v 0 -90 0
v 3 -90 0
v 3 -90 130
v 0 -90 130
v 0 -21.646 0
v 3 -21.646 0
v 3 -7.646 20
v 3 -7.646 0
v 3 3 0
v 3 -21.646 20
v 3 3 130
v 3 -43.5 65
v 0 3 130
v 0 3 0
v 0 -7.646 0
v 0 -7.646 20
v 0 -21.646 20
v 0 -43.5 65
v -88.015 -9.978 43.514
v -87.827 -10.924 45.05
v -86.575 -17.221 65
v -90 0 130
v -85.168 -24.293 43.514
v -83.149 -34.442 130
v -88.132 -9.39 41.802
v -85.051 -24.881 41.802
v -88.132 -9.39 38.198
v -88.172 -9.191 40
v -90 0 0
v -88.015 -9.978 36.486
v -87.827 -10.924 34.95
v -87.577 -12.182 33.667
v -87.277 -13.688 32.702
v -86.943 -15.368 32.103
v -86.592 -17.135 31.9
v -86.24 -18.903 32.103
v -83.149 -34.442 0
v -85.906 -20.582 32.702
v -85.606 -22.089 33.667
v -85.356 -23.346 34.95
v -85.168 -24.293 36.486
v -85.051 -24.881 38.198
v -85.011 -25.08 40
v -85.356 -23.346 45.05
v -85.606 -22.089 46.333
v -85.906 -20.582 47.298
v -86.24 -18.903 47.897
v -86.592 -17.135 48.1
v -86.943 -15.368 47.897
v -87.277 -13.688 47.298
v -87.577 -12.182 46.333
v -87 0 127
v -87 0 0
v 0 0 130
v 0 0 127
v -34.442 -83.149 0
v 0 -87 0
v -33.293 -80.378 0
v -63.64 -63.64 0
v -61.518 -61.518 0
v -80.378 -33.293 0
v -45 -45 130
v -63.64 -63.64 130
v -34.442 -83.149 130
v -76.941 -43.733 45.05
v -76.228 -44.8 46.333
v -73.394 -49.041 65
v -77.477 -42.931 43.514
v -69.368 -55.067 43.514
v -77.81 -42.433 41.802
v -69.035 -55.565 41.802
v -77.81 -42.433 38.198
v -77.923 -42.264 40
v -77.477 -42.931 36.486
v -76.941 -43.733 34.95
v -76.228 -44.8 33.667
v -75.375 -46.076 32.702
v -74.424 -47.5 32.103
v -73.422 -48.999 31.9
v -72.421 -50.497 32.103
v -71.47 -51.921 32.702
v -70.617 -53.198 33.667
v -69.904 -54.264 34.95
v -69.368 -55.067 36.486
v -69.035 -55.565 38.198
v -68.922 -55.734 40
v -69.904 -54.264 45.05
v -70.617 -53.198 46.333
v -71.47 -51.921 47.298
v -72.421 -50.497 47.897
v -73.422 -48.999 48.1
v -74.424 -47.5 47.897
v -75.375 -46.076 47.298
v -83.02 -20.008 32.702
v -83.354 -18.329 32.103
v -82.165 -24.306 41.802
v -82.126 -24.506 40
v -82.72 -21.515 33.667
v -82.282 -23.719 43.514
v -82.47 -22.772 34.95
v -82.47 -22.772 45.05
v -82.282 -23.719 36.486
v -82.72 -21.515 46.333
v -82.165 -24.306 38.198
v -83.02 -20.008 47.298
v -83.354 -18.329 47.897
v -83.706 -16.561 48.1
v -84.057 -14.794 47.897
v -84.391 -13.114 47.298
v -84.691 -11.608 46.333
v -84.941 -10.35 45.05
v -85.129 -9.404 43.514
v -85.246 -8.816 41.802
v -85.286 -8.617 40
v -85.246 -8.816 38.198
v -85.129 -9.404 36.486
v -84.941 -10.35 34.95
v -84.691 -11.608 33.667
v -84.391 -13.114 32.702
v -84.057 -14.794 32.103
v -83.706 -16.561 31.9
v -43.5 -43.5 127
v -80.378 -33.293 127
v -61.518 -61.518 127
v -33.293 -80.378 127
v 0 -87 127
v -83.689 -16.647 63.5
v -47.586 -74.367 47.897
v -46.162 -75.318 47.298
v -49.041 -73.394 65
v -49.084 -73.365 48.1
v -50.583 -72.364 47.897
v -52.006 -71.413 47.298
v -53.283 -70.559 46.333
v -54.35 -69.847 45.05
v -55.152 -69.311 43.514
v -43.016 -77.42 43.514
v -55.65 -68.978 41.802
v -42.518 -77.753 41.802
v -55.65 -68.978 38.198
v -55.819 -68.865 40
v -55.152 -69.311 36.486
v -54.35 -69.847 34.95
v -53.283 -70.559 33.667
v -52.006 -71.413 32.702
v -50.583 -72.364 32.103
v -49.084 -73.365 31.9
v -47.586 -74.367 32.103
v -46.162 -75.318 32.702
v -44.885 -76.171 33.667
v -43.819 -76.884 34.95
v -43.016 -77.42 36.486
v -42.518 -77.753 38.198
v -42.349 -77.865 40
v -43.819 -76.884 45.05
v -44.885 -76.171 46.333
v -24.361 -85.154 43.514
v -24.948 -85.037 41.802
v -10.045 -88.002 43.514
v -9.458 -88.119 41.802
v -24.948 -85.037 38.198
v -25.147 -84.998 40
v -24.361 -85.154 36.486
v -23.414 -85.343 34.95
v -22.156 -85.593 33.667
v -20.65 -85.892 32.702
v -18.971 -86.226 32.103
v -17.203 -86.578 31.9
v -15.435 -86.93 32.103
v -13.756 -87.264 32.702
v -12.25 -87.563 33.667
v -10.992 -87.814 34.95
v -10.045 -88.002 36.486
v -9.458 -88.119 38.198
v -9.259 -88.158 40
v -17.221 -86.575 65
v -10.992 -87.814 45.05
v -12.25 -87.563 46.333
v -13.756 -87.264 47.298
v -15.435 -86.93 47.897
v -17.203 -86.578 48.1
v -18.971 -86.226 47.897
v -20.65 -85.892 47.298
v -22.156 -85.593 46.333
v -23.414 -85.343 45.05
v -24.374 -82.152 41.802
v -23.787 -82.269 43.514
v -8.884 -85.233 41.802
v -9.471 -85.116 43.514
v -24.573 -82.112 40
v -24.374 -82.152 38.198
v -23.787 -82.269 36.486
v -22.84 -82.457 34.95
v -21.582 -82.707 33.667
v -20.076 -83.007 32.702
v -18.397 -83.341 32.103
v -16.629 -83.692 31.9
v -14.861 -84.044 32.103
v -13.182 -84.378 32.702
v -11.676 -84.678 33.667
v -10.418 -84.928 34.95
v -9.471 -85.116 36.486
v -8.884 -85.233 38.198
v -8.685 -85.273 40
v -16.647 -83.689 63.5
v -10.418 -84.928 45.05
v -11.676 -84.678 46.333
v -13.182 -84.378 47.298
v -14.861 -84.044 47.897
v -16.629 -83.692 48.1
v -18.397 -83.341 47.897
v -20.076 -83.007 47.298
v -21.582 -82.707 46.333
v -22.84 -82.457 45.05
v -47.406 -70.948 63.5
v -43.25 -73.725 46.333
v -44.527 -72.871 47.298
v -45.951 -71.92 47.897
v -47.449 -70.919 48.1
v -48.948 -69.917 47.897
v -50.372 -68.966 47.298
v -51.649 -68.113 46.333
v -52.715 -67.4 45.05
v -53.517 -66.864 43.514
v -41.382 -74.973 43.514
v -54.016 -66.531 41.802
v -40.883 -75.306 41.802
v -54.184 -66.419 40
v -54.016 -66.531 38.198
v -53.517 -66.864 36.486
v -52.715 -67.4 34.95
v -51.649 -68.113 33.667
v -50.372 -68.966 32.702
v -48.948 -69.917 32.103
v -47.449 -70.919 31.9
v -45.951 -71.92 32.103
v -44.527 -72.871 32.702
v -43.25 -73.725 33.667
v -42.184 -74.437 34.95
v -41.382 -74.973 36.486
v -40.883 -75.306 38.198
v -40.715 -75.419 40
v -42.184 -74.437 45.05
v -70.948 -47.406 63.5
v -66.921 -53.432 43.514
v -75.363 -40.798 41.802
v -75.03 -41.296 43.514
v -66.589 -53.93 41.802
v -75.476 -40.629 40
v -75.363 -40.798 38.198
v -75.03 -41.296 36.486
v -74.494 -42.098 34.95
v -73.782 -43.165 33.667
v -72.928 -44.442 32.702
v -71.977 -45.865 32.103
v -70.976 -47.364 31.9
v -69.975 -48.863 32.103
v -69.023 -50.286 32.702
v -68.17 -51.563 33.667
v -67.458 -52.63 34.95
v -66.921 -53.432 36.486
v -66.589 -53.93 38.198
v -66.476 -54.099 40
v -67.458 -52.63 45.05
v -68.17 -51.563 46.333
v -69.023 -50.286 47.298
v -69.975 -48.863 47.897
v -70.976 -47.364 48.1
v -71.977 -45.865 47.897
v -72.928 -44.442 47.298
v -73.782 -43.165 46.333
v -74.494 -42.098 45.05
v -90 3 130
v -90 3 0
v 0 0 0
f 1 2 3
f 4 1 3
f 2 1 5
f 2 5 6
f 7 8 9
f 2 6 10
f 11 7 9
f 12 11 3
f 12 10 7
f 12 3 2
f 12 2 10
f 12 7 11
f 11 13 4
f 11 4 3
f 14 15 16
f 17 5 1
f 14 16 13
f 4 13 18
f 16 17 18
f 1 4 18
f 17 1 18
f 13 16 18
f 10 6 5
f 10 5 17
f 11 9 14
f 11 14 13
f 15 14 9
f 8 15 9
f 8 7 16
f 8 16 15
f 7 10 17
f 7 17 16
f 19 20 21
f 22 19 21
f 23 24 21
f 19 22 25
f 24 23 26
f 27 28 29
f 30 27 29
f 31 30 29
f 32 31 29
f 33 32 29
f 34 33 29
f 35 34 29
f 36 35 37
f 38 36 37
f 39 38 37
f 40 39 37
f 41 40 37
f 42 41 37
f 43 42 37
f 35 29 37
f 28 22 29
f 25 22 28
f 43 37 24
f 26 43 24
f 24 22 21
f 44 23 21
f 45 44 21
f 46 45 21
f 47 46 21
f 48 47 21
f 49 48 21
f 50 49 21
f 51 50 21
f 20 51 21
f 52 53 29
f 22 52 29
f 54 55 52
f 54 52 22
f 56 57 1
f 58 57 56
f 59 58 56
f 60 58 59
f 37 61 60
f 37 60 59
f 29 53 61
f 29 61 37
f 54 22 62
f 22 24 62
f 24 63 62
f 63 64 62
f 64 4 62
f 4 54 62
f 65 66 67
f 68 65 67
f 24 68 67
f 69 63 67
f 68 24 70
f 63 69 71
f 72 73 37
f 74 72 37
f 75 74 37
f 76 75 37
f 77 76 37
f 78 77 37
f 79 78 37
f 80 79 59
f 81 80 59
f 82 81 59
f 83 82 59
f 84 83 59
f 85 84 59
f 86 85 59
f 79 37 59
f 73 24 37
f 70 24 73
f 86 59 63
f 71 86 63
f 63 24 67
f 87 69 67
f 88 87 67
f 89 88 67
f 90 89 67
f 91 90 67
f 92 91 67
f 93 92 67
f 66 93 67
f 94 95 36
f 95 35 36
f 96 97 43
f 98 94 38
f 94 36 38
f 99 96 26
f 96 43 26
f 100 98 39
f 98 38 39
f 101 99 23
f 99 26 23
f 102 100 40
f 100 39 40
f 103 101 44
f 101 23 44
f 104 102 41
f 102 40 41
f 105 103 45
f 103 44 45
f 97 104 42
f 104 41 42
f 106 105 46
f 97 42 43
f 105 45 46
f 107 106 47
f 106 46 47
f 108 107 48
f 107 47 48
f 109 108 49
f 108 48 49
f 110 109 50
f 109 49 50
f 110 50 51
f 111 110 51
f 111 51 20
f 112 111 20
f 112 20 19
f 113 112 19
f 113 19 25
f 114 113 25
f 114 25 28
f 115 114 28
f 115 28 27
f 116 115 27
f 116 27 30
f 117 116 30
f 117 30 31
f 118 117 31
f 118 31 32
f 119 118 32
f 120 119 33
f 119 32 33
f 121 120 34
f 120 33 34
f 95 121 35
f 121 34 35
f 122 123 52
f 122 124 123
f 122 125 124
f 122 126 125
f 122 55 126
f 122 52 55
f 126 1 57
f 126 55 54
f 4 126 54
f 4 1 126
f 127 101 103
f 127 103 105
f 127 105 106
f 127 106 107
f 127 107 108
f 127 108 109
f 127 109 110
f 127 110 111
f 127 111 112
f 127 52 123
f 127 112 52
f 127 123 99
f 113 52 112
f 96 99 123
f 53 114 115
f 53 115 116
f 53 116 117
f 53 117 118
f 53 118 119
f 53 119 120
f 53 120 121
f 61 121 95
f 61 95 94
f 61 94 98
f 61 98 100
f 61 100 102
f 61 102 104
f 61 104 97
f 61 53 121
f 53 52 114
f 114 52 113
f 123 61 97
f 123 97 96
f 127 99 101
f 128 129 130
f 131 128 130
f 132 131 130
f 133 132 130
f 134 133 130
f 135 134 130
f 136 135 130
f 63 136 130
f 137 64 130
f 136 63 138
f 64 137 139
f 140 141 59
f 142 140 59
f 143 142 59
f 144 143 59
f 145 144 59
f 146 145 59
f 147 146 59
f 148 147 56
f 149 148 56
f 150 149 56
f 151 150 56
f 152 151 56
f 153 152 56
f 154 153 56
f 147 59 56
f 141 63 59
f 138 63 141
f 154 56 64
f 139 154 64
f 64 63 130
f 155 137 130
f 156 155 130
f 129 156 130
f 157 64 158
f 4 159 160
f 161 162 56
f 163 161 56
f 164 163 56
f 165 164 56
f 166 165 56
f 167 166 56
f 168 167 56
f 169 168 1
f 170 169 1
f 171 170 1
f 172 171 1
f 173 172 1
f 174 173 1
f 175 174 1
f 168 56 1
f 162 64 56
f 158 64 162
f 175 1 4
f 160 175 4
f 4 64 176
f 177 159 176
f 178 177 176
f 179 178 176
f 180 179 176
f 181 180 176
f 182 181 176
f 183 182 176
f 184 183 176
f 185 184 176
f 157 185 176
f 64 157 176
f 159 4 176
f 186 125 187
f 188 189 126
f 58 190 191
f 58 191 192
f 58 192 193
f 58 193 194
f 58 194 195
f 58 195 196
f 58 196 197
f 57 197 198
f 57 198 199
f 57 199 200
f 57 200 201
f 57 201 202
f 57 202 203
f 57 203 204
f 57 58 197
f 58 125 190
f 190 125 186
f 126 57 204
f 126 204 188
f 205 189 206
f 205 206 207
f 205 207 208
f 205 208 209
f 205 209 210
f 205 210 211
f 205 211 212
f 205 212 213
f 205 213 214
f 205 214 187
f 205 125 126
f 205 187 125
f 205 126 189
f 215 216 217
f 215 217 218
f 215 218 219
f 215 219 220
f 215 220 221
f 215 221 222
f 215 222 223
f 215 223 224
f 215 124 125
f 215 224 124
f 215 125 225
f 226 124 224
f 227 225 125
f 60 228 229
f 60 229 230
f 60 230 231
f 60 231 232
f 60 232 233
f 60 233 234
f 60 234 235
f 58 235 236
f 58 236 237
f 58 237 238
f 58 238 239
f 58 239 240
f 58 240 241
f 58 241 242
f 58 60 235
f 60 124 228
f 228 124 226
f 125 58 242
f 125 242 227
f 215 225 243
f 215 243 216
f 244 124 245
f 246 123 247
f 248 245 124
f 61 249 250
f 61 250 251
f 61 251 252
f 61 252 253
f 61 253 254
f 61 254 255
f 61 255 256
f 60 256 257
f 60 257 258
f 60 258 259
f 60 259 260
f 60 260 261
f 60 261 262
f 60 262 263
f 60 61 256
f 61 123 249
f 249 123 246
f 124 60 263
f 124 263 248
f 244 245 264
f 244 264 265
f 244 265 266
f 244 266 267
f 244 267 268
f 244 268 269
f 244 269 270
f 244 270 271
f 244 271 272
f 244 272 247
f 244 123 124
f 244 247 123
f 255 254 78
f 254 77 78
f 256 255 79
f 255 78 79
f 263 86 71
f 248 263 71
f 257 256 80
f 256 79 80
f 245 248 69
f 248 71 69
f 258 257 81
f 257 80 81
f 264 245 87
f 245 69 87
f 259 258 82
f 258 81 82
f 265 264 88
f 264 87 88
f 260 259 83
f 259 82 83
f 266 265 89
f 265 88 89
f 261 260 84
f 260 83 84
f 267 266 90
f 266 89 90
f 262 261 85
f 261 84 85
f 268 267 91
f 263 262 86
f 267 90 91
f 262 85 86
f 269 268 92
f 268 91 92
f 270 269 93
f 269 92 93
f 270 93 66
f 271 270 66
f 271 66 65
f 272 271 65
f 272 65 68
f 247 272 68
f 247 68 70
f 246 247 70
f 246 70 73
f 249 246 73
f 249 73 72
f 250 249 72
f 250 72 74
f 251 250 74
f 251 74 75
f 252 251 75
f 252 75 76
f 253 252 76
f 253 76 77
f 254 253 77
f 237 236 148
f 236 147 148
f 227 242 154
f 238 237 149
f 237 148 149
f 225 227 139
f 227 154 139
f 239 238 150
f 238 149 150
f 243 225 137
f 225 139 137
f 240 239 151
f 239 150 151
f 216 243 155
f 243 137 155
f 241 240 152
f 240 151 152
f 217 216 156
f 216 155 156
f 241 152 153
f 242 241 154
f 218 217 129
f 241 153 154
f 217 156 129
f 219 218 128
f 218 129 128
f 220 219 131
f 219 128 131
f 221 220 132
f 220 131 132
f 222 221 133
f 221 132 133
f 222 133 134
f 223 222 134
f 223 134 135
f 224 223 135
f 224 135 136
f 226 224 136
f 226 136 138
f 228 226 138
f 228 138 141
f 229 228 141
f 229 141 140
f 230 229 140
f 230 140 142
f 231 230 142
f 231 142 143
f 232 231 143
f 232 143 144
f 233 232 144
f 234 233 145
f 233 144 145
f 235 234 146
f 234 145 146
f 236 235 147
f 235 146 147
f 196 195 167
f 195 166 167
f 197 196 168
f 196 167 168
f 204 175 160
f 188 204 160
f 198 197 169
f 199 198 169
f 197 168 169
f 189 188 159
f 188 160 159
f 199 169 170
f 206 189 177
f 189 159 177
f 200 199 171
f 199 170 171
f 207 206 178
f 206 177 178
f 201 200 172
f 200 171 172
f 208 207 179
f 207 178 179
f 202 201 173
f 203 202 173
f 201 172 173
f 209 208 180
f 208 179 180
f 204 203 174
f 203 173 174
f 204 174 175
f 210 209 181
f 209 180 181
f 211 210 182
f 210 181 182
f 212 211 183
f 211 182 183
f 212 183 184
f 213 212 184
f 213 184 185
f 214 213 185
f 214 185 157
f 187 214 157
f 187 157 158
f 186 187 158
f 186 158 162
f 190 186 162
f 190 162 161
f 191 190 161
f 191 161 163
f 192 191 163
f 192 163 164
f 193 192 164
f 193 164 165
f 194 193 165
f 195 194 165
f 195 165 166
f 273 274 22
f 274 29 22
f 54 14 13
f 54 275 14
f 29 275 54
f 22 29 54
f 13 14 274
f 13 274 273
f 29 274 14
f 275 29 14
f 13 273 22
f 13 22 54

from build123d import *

# Parameters (mm, degrees)
BOX002_W        = 90
BOX002_H        = 3
BOX002_DEPTH    = 130
BOX001_W        = 90
BOX001_H        = 90
BOX001_DEPTH    = 130
BOX_W           = 90
BOX_H           = 180
BOX_DEPTH       = 130
PRISM001_DEPTH  = 127
PRISM_DEPTH     = 130
SKETCH001_R     = 8.1
POCKET_DEPTH    = 3
SKETCH002_R     = 8.1
POCKET001_DEPTH = 3
SKETCH003_R     = 8.1
POCKET002_DEPTH = 3
SKETCH004_R     = 8.1
POCKET003_DEPTH = 3
BOX003_W        = 3
BOX003_H        = 93
BOX003_DEPTH    = 130
SKETCH005_W     = 14
SKETCH005_H     = 20
POCKET004_DEPTH = 3


with BuildPart() as cubo002:
    # Box002 → Box002 (new body)
    with BuildSketch(Plane(origin=(-90, 0, 0), x_dir=(1, 0, 0), z_dir=(0, 0, 1))):
        with Locations((45, 1.5)):
            Rectangle(BOX002_W, BOX002_H)
    extrude(amount=BOX002_DEPTH)


with BuildPart() as cubo001:
    # Box001 → Box001 (new body)
    with BuildSketch(Plane(origin=(-90, 0, 0), x_dir=(1, 0, 0), z_dir=(0, 0, 1))):
        with Locations((45, 45)):
            Rectangle(BOX001_W, BOX001_H)
    extrude(amount=BOX001_DEPTH)


with BuildPart() as cubo:
    # Box → Box (new body)
    with BuildSketch(Plane(origin=(0, -90, 0), x_dir=(1, 0, 0), z_dir=(0, 0, 1))):
        with Locations((45, 90)):
            Rectangle(BOX_W, BOX_H)
    extrude(amount=BOX_DEPTH)


with BuildPart() as prisma001:
    # Prism001 → Prism001 (new body)
    with BuildSketch(Plane.XY):
        Polygon((87, 0), (80.3775193285, 33.2934586158), (61.5182899632, 61.5182899632), (33.2934586158, 80.3775193285), (0, 87), (-33.2934586158, 80.3775193285), (-61.5182899632, 61.5182899632), (-80.3775193285, 33.2934586158), (-87, 0), (-80.3775193285, -33.2934586158), (-61.5182899632, -61.5182899632), (-33.2934586158, -80.3775193285), (0, -87), (33.2934586158, -80.3775193285), (61.5182899632, -61.5182899632), (80.3775193285, -33.2934586158), align=None)
    extrude(amount=PRISM001_DEPTH)


with BuildPart() as pocket003:
    # Prism → Prism (new body)
    with BuildSketch(Plane.XY):
        Polygon((90, 0), (83.149157926, 34.4415089129), (63.6396103068, 63.6396103068), (34.4415089129, 83.149157926), (0, 90), (-34.4415089129, 83.149157926), (-63.6396103068, 63.6396103068), (-83.149157926, 34.4415089129), (-90, 0), (-83.149157926, -34.4415089129), (-63.6396103068, -63.6396103068), (-34.4415089129, -83.149157926), (0, -90), (34.4415089129, -83.149157926), (63.6396103068, -63.6396103068), (83.149157926, -34.4415089129), align=None)
    extrude(amount=PRISM_DEPTH)

    # Cut: cut Prisma001
    add(prisma001.part, mode=Mode.SUBTRACT)

    # Cut001: cut Cubo
    add(cubo.part, mode=Mode.SUBTRACT)

    # Cut002: cut Cubo001
    add(cubo001.part, mode=Mode.SUBTRACT)

    # Sketch001 → Pocket (cut)
    with BuildSketch(Plane(origin=(-86.574578963, -17.2207544564, 0), x_dir=(0.195090322, -0.9807852804, 0), z_dir=(-0.9807852804, -0.195090322, 0))):
        with Locations((-0.087106, 40)):
            Circle(SKETCH001_R)
    extrude(amount=-POCKET_DEPTH, mode=Mode.SUBTRACT)

    # Sketch002 → Pocket001 (cut)
    with BuildSketch(Plane(origin=(-73.3943841164, -49.0405596098, 0), x_dir=(0.555570233, -0.8314696123, 0), z_dir=(-0.8314696123, -0.555570233, 0))):
        with Locations((-0.050397, 40)):
            Circle(SKETCH002_R)
    extrude(amount=-POCKET001_DEPTH, mode=Mode.SUBTRACT)

    # Sketch003 → Pocket002 (cut)
    with BuildSketch(Plane(origin=(-49.0405596098, -73.3943841164, 0), x_dir=(0.8314696123, -0.555570233, 0), z_dir=(-0.555570233, -0.8314696123, 0))):
        with Locations((-0.05246, 40)):
            Circle(SKETCH003_R)
    extrude(amount=-POCKET002_DEPTH, mode=Mode.SUBTRACT)

    # Sketch004 → Pocket003 (cut)
    with BuildSketch(Plane(origin=(-17.2207544564, -86.574578963, 0), x_dir=(0.9807852804, -0.195090322, 0), z_dir=(-0.195090322, -0.9807852804, 0))):
        with Locations((0.018064, 40)):
            Circle(SKETCH004_R)
    extrude(amount=-POCKET003_DEPTH, mode=Mode.SUBTRACT)


with BuildPart() as pocket004:
    # Box003 → Box003 (new body)
    with BuildSketch(Plane(origin=(0, -90, 0), x_dir=(1, 0, 0), z_dir=(0, 0, 1))):
        with Locations((1.5, 46.5)):
            Rectangle(BOX003_W, BOX003_H)
    extrude(amount=BOX003_DEPTH)

    # Sketch005 → Pocket004 (cut)
    with BuildSketch(Plane(origin=(3, -90, 0), x_dir=(0, 1, 0), z_dir=(1, 0, 0))):
        with Locations((75.3541223238, 10)):
            Rectangle(SKETCH005_W, SKETCH005_H)
    extrude(amount=-POCKET004_DEPTH, mode=Mode.SUBTRACT)


solid = Compound([cubo002.part, pocket003.part, pocket004.part])
